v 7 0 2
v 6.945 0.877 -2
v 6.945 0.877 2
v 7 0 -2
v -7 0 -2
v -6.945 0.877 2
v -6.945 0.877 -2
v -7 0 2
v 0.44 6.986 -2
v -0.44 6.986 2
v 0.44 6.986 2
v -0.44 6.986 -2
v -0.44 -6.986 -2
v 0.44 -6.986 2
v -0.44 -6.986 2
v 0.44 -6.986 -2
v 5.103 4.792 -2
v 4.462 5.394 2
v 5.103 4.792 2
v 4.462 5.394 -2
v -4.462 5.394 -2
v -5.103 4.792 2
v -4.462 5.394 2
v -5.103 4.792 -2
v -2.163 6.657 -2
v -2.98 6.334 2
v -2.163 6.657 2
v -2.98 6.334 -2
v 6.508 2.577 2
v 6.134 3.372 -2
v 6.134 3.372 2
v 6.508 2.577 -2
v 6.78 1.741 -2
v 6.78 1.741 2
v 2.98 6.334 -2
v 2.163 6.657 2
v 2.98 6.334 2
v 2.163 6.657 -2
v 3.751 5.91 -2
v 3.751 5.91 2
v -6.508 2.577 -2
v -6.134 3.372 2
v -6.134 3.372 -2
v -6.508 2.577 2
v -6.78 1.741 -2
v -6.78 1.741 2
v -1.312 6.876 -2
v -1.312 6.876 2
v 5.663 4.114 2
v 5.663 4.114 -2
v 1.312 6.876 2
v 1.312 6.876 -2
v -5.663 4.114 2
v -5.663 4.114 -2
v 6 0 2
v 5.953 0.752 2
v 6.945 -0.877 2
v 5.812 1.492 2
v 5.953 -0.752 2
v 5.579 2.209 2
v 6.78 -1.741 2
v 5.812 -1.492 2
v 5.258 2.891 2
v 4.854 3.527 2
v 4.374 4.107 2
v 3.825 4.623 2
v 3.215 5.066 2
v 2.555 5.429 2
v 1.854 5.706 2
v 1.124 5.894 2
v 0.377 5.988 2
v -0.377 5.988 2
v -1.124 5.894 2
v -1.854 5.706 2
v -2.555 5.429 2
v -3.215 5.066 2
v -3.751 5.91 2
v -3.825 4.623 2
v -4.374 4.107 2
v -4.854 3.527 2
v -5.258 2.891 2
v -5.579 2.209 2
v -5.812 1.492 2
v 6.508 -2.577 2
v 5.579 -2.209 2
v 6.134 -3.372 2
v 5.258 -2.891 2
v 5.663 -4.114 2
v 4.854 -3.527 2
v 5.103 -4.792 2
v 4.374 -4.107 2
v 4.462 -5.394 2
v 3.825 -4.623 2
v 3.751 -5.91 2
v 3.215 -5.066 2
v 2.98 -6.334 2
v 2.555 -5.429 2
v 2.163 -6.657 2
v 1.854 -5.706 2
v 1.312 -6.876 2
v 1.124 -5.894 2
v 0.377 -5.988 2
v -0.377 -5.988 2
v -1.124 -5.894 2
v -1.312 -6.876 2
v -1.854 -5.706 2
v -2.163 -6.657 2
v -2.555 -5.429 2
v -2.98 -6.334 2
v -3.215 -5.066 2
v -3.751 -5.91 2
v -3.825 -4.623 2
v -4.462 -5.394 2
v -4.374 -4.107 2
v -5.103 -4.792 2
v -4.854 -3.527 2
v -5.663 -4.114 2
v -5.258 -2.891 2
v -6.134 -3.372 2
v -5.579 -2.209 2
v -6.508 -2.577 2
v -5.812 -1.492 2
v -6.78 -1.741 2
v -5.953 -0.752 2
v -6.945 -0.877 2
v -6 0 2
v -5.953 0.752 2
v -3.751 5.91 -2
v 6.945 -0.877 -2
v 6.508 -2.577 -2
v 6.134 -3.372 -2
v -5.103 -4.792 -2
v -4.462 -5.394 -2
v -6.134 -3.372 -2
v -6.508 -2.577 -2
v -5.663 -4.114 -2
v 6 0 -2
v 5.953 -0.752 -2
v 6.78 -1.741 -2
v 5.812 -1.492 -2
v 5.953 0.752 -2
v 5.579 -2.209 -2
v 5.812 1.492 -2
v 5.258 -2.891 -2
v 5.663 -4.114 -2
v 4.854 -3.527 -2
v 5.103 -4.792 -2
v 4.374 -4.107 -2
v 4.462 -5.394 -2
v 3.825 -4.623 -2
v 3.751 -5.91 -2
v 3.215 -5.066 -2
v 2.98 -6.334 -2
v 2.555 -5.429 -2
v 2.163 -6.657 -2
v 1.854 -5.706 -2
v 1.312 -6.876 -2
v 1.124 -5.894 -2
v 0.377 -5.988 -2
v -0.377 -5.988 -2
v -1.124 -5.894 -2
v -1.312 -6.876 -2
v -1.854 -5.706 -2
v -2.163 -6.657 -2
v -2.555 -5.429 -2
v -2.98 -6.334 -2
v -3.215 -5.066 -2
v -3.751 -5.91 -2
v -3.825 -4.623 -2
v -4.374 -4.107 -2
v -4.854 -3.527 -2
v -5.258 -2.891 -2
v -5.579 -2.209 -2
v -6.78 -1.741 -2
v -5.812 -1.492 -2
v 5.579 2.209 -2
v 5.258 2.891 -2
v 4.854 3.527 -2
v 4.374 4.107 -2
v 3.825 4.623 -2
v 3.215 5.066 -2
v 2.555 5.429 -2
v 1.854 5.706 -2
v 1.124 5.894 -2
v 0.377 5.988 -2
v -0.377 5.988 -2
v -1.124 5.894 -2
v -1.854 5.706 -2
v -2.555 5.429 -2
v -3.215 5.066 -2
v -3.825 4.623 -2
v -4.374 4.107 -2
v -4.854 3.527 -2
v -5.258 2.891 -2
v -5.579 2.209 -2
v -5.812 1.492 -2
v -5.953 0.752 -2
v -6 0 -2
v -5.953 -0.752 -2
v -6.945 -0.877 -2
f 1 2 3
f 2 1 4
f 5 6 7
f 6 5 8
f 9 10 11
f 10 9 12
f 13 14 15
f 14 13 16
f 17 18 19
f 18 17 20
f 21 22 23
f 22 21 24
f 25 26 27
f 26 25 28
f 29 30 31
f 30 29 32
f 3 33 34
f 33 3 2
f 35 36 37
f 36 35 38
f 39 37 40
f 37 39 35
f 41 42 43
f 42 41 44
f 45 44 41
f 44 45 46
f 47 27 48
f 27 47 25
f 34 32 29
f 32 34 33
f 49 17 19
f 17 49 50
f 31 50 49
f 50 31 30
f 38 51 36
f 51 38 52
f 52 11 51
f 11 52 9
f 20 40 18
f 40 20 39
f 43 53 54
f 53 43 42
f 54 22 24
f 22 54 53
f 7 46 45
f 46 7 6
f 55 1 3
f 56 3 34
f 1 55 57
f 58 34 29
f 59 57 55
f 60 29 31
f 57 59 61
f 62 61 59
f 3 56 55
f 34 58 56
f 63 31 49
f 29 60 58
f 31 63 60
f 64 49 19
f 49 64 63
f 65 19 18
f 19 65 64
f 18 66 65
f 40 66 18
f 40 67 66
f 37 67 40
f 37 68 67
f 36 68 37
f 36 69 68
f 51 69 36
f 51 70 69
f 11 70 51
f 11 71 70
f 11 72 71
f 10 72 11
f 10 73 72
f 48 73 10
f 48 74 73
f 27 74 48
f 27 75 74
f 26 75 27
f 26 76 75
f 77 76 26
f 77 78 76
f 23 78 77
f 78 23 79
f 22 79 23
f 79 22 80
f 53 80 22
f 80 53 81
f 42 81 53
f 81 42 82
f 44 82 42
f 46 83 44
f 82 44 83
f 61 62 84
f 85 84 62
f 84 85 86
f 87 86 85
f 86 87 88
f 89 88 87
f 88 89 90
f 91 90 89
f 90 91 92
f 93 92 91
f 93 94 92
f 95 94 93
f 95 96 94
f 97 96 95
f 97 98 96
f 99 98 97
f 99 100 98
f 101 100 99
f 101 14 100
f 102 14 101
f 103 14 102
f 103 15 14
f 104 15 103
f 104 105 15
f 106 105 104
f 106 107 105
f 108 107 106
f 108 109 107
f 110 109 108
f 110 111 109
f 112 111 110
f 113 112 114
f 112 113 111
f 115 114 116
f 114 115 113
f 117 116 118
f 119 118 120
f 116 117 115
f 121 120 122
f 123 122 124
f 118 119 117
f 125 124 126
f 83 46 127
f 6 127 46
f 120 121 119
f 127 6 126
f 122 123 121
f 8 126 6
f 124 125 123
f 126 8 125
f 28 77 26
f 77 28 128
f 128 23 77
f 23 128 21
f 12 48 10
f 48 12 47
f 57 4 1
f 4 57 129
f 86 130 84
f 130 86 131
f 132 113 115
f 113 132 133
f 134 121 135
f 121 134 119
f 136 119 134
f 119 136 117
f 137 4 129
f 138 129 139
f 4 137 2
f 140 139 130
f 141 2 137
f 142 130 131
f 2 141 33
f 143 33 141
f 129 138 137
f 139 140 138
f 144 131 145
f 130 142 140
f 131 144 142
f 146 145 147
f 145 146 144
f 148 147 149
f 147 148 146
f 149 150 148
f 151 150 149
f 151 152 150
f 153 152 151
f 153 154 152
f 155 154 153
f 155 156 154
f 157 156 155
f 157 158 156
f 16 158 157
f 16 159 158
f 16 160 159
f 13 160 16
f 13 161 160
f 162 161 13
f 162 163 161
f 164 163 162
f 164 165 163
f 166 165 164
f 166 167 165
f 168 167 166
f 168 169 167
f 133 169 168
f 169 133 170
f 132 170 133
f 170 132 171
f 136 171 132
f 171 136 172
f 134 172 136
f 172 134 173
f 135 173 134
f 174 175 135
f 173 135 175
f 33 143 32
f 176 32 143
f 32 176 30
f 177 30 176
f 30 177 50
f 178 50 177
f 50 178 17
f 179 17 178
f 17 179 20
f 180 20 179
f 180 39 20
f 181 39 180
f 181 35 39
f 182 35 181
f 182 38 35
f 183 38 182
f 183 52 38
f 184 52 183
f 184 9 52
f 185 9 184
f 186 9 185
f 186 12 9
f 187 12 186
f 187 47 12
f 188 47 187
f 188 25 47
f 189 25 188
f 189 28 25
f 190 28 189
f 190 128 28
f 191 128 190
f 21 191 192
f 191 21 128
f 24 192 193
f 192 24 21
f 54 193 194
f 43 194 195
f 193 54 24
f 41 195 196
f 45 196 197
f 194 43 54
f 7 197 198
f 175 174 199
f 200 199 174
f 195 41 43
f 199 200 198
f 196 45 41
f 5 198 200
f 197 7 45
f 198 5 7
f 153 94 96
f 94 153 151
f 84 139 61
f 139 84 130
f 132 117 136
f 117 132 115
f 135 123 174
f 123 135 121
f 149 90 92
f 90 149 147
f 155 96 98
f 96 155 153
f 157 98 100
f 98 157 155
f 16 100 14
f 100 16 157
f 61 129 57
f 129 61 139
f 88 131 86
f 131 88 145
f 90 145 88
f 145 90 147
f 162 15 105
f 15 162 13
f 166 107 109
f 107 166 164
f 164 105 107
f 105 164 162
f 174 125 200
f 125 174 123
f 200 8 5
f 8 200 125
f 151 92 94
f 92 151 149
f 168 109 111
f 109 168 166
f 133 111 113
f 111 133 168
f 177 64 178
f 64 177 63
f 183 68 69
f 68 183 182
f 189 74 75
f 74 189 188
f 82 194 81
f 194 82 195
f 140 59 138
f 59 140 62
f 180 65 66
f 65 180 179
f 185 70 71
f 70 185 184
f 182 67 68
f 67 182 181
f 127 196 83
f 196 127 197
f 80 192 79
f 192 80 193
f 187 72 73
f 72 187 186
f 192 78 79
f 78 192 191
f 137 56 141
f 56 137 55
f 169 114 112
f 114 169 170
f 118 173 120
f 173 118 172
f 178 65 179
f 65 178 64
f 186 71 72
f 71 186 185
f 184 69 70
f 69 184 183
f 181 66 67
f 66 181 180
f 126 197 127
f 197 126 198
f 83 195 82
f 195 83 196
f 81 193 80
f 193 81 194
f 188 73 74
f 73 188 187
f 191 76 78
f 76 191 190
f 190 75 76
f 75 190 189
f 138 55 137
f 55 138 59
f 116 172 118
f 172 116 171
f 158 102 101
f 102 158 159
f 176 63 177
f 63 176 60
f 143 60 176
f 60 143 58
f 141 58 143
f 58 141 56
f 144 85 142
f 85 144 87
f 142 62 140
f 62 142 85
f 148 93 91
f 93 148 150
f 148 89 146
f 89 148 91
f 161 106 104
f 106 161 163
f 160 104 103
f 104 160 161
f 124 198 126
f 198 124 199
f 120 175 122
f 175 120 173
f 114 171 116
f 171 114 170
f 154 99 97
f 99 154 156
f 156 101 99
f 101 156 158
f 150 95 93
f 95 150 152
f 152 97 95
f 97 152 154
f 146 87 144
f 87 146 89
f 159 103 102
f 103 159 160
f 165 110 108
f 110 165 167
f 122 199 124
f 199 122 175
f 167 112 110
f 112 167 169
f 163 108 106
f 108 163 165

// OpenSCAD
$fn = 50;


difference() {
	union() {
		translate(v = [0, 0, -2.0000000000]) {
			cylinder(h = 4, r = 7.0000000000);
		}
	}
	union() {
		translate(v = [0, 0, -100.0000000000]) {
			cylinder(h = 200, r = 6);
		}
	}
}
